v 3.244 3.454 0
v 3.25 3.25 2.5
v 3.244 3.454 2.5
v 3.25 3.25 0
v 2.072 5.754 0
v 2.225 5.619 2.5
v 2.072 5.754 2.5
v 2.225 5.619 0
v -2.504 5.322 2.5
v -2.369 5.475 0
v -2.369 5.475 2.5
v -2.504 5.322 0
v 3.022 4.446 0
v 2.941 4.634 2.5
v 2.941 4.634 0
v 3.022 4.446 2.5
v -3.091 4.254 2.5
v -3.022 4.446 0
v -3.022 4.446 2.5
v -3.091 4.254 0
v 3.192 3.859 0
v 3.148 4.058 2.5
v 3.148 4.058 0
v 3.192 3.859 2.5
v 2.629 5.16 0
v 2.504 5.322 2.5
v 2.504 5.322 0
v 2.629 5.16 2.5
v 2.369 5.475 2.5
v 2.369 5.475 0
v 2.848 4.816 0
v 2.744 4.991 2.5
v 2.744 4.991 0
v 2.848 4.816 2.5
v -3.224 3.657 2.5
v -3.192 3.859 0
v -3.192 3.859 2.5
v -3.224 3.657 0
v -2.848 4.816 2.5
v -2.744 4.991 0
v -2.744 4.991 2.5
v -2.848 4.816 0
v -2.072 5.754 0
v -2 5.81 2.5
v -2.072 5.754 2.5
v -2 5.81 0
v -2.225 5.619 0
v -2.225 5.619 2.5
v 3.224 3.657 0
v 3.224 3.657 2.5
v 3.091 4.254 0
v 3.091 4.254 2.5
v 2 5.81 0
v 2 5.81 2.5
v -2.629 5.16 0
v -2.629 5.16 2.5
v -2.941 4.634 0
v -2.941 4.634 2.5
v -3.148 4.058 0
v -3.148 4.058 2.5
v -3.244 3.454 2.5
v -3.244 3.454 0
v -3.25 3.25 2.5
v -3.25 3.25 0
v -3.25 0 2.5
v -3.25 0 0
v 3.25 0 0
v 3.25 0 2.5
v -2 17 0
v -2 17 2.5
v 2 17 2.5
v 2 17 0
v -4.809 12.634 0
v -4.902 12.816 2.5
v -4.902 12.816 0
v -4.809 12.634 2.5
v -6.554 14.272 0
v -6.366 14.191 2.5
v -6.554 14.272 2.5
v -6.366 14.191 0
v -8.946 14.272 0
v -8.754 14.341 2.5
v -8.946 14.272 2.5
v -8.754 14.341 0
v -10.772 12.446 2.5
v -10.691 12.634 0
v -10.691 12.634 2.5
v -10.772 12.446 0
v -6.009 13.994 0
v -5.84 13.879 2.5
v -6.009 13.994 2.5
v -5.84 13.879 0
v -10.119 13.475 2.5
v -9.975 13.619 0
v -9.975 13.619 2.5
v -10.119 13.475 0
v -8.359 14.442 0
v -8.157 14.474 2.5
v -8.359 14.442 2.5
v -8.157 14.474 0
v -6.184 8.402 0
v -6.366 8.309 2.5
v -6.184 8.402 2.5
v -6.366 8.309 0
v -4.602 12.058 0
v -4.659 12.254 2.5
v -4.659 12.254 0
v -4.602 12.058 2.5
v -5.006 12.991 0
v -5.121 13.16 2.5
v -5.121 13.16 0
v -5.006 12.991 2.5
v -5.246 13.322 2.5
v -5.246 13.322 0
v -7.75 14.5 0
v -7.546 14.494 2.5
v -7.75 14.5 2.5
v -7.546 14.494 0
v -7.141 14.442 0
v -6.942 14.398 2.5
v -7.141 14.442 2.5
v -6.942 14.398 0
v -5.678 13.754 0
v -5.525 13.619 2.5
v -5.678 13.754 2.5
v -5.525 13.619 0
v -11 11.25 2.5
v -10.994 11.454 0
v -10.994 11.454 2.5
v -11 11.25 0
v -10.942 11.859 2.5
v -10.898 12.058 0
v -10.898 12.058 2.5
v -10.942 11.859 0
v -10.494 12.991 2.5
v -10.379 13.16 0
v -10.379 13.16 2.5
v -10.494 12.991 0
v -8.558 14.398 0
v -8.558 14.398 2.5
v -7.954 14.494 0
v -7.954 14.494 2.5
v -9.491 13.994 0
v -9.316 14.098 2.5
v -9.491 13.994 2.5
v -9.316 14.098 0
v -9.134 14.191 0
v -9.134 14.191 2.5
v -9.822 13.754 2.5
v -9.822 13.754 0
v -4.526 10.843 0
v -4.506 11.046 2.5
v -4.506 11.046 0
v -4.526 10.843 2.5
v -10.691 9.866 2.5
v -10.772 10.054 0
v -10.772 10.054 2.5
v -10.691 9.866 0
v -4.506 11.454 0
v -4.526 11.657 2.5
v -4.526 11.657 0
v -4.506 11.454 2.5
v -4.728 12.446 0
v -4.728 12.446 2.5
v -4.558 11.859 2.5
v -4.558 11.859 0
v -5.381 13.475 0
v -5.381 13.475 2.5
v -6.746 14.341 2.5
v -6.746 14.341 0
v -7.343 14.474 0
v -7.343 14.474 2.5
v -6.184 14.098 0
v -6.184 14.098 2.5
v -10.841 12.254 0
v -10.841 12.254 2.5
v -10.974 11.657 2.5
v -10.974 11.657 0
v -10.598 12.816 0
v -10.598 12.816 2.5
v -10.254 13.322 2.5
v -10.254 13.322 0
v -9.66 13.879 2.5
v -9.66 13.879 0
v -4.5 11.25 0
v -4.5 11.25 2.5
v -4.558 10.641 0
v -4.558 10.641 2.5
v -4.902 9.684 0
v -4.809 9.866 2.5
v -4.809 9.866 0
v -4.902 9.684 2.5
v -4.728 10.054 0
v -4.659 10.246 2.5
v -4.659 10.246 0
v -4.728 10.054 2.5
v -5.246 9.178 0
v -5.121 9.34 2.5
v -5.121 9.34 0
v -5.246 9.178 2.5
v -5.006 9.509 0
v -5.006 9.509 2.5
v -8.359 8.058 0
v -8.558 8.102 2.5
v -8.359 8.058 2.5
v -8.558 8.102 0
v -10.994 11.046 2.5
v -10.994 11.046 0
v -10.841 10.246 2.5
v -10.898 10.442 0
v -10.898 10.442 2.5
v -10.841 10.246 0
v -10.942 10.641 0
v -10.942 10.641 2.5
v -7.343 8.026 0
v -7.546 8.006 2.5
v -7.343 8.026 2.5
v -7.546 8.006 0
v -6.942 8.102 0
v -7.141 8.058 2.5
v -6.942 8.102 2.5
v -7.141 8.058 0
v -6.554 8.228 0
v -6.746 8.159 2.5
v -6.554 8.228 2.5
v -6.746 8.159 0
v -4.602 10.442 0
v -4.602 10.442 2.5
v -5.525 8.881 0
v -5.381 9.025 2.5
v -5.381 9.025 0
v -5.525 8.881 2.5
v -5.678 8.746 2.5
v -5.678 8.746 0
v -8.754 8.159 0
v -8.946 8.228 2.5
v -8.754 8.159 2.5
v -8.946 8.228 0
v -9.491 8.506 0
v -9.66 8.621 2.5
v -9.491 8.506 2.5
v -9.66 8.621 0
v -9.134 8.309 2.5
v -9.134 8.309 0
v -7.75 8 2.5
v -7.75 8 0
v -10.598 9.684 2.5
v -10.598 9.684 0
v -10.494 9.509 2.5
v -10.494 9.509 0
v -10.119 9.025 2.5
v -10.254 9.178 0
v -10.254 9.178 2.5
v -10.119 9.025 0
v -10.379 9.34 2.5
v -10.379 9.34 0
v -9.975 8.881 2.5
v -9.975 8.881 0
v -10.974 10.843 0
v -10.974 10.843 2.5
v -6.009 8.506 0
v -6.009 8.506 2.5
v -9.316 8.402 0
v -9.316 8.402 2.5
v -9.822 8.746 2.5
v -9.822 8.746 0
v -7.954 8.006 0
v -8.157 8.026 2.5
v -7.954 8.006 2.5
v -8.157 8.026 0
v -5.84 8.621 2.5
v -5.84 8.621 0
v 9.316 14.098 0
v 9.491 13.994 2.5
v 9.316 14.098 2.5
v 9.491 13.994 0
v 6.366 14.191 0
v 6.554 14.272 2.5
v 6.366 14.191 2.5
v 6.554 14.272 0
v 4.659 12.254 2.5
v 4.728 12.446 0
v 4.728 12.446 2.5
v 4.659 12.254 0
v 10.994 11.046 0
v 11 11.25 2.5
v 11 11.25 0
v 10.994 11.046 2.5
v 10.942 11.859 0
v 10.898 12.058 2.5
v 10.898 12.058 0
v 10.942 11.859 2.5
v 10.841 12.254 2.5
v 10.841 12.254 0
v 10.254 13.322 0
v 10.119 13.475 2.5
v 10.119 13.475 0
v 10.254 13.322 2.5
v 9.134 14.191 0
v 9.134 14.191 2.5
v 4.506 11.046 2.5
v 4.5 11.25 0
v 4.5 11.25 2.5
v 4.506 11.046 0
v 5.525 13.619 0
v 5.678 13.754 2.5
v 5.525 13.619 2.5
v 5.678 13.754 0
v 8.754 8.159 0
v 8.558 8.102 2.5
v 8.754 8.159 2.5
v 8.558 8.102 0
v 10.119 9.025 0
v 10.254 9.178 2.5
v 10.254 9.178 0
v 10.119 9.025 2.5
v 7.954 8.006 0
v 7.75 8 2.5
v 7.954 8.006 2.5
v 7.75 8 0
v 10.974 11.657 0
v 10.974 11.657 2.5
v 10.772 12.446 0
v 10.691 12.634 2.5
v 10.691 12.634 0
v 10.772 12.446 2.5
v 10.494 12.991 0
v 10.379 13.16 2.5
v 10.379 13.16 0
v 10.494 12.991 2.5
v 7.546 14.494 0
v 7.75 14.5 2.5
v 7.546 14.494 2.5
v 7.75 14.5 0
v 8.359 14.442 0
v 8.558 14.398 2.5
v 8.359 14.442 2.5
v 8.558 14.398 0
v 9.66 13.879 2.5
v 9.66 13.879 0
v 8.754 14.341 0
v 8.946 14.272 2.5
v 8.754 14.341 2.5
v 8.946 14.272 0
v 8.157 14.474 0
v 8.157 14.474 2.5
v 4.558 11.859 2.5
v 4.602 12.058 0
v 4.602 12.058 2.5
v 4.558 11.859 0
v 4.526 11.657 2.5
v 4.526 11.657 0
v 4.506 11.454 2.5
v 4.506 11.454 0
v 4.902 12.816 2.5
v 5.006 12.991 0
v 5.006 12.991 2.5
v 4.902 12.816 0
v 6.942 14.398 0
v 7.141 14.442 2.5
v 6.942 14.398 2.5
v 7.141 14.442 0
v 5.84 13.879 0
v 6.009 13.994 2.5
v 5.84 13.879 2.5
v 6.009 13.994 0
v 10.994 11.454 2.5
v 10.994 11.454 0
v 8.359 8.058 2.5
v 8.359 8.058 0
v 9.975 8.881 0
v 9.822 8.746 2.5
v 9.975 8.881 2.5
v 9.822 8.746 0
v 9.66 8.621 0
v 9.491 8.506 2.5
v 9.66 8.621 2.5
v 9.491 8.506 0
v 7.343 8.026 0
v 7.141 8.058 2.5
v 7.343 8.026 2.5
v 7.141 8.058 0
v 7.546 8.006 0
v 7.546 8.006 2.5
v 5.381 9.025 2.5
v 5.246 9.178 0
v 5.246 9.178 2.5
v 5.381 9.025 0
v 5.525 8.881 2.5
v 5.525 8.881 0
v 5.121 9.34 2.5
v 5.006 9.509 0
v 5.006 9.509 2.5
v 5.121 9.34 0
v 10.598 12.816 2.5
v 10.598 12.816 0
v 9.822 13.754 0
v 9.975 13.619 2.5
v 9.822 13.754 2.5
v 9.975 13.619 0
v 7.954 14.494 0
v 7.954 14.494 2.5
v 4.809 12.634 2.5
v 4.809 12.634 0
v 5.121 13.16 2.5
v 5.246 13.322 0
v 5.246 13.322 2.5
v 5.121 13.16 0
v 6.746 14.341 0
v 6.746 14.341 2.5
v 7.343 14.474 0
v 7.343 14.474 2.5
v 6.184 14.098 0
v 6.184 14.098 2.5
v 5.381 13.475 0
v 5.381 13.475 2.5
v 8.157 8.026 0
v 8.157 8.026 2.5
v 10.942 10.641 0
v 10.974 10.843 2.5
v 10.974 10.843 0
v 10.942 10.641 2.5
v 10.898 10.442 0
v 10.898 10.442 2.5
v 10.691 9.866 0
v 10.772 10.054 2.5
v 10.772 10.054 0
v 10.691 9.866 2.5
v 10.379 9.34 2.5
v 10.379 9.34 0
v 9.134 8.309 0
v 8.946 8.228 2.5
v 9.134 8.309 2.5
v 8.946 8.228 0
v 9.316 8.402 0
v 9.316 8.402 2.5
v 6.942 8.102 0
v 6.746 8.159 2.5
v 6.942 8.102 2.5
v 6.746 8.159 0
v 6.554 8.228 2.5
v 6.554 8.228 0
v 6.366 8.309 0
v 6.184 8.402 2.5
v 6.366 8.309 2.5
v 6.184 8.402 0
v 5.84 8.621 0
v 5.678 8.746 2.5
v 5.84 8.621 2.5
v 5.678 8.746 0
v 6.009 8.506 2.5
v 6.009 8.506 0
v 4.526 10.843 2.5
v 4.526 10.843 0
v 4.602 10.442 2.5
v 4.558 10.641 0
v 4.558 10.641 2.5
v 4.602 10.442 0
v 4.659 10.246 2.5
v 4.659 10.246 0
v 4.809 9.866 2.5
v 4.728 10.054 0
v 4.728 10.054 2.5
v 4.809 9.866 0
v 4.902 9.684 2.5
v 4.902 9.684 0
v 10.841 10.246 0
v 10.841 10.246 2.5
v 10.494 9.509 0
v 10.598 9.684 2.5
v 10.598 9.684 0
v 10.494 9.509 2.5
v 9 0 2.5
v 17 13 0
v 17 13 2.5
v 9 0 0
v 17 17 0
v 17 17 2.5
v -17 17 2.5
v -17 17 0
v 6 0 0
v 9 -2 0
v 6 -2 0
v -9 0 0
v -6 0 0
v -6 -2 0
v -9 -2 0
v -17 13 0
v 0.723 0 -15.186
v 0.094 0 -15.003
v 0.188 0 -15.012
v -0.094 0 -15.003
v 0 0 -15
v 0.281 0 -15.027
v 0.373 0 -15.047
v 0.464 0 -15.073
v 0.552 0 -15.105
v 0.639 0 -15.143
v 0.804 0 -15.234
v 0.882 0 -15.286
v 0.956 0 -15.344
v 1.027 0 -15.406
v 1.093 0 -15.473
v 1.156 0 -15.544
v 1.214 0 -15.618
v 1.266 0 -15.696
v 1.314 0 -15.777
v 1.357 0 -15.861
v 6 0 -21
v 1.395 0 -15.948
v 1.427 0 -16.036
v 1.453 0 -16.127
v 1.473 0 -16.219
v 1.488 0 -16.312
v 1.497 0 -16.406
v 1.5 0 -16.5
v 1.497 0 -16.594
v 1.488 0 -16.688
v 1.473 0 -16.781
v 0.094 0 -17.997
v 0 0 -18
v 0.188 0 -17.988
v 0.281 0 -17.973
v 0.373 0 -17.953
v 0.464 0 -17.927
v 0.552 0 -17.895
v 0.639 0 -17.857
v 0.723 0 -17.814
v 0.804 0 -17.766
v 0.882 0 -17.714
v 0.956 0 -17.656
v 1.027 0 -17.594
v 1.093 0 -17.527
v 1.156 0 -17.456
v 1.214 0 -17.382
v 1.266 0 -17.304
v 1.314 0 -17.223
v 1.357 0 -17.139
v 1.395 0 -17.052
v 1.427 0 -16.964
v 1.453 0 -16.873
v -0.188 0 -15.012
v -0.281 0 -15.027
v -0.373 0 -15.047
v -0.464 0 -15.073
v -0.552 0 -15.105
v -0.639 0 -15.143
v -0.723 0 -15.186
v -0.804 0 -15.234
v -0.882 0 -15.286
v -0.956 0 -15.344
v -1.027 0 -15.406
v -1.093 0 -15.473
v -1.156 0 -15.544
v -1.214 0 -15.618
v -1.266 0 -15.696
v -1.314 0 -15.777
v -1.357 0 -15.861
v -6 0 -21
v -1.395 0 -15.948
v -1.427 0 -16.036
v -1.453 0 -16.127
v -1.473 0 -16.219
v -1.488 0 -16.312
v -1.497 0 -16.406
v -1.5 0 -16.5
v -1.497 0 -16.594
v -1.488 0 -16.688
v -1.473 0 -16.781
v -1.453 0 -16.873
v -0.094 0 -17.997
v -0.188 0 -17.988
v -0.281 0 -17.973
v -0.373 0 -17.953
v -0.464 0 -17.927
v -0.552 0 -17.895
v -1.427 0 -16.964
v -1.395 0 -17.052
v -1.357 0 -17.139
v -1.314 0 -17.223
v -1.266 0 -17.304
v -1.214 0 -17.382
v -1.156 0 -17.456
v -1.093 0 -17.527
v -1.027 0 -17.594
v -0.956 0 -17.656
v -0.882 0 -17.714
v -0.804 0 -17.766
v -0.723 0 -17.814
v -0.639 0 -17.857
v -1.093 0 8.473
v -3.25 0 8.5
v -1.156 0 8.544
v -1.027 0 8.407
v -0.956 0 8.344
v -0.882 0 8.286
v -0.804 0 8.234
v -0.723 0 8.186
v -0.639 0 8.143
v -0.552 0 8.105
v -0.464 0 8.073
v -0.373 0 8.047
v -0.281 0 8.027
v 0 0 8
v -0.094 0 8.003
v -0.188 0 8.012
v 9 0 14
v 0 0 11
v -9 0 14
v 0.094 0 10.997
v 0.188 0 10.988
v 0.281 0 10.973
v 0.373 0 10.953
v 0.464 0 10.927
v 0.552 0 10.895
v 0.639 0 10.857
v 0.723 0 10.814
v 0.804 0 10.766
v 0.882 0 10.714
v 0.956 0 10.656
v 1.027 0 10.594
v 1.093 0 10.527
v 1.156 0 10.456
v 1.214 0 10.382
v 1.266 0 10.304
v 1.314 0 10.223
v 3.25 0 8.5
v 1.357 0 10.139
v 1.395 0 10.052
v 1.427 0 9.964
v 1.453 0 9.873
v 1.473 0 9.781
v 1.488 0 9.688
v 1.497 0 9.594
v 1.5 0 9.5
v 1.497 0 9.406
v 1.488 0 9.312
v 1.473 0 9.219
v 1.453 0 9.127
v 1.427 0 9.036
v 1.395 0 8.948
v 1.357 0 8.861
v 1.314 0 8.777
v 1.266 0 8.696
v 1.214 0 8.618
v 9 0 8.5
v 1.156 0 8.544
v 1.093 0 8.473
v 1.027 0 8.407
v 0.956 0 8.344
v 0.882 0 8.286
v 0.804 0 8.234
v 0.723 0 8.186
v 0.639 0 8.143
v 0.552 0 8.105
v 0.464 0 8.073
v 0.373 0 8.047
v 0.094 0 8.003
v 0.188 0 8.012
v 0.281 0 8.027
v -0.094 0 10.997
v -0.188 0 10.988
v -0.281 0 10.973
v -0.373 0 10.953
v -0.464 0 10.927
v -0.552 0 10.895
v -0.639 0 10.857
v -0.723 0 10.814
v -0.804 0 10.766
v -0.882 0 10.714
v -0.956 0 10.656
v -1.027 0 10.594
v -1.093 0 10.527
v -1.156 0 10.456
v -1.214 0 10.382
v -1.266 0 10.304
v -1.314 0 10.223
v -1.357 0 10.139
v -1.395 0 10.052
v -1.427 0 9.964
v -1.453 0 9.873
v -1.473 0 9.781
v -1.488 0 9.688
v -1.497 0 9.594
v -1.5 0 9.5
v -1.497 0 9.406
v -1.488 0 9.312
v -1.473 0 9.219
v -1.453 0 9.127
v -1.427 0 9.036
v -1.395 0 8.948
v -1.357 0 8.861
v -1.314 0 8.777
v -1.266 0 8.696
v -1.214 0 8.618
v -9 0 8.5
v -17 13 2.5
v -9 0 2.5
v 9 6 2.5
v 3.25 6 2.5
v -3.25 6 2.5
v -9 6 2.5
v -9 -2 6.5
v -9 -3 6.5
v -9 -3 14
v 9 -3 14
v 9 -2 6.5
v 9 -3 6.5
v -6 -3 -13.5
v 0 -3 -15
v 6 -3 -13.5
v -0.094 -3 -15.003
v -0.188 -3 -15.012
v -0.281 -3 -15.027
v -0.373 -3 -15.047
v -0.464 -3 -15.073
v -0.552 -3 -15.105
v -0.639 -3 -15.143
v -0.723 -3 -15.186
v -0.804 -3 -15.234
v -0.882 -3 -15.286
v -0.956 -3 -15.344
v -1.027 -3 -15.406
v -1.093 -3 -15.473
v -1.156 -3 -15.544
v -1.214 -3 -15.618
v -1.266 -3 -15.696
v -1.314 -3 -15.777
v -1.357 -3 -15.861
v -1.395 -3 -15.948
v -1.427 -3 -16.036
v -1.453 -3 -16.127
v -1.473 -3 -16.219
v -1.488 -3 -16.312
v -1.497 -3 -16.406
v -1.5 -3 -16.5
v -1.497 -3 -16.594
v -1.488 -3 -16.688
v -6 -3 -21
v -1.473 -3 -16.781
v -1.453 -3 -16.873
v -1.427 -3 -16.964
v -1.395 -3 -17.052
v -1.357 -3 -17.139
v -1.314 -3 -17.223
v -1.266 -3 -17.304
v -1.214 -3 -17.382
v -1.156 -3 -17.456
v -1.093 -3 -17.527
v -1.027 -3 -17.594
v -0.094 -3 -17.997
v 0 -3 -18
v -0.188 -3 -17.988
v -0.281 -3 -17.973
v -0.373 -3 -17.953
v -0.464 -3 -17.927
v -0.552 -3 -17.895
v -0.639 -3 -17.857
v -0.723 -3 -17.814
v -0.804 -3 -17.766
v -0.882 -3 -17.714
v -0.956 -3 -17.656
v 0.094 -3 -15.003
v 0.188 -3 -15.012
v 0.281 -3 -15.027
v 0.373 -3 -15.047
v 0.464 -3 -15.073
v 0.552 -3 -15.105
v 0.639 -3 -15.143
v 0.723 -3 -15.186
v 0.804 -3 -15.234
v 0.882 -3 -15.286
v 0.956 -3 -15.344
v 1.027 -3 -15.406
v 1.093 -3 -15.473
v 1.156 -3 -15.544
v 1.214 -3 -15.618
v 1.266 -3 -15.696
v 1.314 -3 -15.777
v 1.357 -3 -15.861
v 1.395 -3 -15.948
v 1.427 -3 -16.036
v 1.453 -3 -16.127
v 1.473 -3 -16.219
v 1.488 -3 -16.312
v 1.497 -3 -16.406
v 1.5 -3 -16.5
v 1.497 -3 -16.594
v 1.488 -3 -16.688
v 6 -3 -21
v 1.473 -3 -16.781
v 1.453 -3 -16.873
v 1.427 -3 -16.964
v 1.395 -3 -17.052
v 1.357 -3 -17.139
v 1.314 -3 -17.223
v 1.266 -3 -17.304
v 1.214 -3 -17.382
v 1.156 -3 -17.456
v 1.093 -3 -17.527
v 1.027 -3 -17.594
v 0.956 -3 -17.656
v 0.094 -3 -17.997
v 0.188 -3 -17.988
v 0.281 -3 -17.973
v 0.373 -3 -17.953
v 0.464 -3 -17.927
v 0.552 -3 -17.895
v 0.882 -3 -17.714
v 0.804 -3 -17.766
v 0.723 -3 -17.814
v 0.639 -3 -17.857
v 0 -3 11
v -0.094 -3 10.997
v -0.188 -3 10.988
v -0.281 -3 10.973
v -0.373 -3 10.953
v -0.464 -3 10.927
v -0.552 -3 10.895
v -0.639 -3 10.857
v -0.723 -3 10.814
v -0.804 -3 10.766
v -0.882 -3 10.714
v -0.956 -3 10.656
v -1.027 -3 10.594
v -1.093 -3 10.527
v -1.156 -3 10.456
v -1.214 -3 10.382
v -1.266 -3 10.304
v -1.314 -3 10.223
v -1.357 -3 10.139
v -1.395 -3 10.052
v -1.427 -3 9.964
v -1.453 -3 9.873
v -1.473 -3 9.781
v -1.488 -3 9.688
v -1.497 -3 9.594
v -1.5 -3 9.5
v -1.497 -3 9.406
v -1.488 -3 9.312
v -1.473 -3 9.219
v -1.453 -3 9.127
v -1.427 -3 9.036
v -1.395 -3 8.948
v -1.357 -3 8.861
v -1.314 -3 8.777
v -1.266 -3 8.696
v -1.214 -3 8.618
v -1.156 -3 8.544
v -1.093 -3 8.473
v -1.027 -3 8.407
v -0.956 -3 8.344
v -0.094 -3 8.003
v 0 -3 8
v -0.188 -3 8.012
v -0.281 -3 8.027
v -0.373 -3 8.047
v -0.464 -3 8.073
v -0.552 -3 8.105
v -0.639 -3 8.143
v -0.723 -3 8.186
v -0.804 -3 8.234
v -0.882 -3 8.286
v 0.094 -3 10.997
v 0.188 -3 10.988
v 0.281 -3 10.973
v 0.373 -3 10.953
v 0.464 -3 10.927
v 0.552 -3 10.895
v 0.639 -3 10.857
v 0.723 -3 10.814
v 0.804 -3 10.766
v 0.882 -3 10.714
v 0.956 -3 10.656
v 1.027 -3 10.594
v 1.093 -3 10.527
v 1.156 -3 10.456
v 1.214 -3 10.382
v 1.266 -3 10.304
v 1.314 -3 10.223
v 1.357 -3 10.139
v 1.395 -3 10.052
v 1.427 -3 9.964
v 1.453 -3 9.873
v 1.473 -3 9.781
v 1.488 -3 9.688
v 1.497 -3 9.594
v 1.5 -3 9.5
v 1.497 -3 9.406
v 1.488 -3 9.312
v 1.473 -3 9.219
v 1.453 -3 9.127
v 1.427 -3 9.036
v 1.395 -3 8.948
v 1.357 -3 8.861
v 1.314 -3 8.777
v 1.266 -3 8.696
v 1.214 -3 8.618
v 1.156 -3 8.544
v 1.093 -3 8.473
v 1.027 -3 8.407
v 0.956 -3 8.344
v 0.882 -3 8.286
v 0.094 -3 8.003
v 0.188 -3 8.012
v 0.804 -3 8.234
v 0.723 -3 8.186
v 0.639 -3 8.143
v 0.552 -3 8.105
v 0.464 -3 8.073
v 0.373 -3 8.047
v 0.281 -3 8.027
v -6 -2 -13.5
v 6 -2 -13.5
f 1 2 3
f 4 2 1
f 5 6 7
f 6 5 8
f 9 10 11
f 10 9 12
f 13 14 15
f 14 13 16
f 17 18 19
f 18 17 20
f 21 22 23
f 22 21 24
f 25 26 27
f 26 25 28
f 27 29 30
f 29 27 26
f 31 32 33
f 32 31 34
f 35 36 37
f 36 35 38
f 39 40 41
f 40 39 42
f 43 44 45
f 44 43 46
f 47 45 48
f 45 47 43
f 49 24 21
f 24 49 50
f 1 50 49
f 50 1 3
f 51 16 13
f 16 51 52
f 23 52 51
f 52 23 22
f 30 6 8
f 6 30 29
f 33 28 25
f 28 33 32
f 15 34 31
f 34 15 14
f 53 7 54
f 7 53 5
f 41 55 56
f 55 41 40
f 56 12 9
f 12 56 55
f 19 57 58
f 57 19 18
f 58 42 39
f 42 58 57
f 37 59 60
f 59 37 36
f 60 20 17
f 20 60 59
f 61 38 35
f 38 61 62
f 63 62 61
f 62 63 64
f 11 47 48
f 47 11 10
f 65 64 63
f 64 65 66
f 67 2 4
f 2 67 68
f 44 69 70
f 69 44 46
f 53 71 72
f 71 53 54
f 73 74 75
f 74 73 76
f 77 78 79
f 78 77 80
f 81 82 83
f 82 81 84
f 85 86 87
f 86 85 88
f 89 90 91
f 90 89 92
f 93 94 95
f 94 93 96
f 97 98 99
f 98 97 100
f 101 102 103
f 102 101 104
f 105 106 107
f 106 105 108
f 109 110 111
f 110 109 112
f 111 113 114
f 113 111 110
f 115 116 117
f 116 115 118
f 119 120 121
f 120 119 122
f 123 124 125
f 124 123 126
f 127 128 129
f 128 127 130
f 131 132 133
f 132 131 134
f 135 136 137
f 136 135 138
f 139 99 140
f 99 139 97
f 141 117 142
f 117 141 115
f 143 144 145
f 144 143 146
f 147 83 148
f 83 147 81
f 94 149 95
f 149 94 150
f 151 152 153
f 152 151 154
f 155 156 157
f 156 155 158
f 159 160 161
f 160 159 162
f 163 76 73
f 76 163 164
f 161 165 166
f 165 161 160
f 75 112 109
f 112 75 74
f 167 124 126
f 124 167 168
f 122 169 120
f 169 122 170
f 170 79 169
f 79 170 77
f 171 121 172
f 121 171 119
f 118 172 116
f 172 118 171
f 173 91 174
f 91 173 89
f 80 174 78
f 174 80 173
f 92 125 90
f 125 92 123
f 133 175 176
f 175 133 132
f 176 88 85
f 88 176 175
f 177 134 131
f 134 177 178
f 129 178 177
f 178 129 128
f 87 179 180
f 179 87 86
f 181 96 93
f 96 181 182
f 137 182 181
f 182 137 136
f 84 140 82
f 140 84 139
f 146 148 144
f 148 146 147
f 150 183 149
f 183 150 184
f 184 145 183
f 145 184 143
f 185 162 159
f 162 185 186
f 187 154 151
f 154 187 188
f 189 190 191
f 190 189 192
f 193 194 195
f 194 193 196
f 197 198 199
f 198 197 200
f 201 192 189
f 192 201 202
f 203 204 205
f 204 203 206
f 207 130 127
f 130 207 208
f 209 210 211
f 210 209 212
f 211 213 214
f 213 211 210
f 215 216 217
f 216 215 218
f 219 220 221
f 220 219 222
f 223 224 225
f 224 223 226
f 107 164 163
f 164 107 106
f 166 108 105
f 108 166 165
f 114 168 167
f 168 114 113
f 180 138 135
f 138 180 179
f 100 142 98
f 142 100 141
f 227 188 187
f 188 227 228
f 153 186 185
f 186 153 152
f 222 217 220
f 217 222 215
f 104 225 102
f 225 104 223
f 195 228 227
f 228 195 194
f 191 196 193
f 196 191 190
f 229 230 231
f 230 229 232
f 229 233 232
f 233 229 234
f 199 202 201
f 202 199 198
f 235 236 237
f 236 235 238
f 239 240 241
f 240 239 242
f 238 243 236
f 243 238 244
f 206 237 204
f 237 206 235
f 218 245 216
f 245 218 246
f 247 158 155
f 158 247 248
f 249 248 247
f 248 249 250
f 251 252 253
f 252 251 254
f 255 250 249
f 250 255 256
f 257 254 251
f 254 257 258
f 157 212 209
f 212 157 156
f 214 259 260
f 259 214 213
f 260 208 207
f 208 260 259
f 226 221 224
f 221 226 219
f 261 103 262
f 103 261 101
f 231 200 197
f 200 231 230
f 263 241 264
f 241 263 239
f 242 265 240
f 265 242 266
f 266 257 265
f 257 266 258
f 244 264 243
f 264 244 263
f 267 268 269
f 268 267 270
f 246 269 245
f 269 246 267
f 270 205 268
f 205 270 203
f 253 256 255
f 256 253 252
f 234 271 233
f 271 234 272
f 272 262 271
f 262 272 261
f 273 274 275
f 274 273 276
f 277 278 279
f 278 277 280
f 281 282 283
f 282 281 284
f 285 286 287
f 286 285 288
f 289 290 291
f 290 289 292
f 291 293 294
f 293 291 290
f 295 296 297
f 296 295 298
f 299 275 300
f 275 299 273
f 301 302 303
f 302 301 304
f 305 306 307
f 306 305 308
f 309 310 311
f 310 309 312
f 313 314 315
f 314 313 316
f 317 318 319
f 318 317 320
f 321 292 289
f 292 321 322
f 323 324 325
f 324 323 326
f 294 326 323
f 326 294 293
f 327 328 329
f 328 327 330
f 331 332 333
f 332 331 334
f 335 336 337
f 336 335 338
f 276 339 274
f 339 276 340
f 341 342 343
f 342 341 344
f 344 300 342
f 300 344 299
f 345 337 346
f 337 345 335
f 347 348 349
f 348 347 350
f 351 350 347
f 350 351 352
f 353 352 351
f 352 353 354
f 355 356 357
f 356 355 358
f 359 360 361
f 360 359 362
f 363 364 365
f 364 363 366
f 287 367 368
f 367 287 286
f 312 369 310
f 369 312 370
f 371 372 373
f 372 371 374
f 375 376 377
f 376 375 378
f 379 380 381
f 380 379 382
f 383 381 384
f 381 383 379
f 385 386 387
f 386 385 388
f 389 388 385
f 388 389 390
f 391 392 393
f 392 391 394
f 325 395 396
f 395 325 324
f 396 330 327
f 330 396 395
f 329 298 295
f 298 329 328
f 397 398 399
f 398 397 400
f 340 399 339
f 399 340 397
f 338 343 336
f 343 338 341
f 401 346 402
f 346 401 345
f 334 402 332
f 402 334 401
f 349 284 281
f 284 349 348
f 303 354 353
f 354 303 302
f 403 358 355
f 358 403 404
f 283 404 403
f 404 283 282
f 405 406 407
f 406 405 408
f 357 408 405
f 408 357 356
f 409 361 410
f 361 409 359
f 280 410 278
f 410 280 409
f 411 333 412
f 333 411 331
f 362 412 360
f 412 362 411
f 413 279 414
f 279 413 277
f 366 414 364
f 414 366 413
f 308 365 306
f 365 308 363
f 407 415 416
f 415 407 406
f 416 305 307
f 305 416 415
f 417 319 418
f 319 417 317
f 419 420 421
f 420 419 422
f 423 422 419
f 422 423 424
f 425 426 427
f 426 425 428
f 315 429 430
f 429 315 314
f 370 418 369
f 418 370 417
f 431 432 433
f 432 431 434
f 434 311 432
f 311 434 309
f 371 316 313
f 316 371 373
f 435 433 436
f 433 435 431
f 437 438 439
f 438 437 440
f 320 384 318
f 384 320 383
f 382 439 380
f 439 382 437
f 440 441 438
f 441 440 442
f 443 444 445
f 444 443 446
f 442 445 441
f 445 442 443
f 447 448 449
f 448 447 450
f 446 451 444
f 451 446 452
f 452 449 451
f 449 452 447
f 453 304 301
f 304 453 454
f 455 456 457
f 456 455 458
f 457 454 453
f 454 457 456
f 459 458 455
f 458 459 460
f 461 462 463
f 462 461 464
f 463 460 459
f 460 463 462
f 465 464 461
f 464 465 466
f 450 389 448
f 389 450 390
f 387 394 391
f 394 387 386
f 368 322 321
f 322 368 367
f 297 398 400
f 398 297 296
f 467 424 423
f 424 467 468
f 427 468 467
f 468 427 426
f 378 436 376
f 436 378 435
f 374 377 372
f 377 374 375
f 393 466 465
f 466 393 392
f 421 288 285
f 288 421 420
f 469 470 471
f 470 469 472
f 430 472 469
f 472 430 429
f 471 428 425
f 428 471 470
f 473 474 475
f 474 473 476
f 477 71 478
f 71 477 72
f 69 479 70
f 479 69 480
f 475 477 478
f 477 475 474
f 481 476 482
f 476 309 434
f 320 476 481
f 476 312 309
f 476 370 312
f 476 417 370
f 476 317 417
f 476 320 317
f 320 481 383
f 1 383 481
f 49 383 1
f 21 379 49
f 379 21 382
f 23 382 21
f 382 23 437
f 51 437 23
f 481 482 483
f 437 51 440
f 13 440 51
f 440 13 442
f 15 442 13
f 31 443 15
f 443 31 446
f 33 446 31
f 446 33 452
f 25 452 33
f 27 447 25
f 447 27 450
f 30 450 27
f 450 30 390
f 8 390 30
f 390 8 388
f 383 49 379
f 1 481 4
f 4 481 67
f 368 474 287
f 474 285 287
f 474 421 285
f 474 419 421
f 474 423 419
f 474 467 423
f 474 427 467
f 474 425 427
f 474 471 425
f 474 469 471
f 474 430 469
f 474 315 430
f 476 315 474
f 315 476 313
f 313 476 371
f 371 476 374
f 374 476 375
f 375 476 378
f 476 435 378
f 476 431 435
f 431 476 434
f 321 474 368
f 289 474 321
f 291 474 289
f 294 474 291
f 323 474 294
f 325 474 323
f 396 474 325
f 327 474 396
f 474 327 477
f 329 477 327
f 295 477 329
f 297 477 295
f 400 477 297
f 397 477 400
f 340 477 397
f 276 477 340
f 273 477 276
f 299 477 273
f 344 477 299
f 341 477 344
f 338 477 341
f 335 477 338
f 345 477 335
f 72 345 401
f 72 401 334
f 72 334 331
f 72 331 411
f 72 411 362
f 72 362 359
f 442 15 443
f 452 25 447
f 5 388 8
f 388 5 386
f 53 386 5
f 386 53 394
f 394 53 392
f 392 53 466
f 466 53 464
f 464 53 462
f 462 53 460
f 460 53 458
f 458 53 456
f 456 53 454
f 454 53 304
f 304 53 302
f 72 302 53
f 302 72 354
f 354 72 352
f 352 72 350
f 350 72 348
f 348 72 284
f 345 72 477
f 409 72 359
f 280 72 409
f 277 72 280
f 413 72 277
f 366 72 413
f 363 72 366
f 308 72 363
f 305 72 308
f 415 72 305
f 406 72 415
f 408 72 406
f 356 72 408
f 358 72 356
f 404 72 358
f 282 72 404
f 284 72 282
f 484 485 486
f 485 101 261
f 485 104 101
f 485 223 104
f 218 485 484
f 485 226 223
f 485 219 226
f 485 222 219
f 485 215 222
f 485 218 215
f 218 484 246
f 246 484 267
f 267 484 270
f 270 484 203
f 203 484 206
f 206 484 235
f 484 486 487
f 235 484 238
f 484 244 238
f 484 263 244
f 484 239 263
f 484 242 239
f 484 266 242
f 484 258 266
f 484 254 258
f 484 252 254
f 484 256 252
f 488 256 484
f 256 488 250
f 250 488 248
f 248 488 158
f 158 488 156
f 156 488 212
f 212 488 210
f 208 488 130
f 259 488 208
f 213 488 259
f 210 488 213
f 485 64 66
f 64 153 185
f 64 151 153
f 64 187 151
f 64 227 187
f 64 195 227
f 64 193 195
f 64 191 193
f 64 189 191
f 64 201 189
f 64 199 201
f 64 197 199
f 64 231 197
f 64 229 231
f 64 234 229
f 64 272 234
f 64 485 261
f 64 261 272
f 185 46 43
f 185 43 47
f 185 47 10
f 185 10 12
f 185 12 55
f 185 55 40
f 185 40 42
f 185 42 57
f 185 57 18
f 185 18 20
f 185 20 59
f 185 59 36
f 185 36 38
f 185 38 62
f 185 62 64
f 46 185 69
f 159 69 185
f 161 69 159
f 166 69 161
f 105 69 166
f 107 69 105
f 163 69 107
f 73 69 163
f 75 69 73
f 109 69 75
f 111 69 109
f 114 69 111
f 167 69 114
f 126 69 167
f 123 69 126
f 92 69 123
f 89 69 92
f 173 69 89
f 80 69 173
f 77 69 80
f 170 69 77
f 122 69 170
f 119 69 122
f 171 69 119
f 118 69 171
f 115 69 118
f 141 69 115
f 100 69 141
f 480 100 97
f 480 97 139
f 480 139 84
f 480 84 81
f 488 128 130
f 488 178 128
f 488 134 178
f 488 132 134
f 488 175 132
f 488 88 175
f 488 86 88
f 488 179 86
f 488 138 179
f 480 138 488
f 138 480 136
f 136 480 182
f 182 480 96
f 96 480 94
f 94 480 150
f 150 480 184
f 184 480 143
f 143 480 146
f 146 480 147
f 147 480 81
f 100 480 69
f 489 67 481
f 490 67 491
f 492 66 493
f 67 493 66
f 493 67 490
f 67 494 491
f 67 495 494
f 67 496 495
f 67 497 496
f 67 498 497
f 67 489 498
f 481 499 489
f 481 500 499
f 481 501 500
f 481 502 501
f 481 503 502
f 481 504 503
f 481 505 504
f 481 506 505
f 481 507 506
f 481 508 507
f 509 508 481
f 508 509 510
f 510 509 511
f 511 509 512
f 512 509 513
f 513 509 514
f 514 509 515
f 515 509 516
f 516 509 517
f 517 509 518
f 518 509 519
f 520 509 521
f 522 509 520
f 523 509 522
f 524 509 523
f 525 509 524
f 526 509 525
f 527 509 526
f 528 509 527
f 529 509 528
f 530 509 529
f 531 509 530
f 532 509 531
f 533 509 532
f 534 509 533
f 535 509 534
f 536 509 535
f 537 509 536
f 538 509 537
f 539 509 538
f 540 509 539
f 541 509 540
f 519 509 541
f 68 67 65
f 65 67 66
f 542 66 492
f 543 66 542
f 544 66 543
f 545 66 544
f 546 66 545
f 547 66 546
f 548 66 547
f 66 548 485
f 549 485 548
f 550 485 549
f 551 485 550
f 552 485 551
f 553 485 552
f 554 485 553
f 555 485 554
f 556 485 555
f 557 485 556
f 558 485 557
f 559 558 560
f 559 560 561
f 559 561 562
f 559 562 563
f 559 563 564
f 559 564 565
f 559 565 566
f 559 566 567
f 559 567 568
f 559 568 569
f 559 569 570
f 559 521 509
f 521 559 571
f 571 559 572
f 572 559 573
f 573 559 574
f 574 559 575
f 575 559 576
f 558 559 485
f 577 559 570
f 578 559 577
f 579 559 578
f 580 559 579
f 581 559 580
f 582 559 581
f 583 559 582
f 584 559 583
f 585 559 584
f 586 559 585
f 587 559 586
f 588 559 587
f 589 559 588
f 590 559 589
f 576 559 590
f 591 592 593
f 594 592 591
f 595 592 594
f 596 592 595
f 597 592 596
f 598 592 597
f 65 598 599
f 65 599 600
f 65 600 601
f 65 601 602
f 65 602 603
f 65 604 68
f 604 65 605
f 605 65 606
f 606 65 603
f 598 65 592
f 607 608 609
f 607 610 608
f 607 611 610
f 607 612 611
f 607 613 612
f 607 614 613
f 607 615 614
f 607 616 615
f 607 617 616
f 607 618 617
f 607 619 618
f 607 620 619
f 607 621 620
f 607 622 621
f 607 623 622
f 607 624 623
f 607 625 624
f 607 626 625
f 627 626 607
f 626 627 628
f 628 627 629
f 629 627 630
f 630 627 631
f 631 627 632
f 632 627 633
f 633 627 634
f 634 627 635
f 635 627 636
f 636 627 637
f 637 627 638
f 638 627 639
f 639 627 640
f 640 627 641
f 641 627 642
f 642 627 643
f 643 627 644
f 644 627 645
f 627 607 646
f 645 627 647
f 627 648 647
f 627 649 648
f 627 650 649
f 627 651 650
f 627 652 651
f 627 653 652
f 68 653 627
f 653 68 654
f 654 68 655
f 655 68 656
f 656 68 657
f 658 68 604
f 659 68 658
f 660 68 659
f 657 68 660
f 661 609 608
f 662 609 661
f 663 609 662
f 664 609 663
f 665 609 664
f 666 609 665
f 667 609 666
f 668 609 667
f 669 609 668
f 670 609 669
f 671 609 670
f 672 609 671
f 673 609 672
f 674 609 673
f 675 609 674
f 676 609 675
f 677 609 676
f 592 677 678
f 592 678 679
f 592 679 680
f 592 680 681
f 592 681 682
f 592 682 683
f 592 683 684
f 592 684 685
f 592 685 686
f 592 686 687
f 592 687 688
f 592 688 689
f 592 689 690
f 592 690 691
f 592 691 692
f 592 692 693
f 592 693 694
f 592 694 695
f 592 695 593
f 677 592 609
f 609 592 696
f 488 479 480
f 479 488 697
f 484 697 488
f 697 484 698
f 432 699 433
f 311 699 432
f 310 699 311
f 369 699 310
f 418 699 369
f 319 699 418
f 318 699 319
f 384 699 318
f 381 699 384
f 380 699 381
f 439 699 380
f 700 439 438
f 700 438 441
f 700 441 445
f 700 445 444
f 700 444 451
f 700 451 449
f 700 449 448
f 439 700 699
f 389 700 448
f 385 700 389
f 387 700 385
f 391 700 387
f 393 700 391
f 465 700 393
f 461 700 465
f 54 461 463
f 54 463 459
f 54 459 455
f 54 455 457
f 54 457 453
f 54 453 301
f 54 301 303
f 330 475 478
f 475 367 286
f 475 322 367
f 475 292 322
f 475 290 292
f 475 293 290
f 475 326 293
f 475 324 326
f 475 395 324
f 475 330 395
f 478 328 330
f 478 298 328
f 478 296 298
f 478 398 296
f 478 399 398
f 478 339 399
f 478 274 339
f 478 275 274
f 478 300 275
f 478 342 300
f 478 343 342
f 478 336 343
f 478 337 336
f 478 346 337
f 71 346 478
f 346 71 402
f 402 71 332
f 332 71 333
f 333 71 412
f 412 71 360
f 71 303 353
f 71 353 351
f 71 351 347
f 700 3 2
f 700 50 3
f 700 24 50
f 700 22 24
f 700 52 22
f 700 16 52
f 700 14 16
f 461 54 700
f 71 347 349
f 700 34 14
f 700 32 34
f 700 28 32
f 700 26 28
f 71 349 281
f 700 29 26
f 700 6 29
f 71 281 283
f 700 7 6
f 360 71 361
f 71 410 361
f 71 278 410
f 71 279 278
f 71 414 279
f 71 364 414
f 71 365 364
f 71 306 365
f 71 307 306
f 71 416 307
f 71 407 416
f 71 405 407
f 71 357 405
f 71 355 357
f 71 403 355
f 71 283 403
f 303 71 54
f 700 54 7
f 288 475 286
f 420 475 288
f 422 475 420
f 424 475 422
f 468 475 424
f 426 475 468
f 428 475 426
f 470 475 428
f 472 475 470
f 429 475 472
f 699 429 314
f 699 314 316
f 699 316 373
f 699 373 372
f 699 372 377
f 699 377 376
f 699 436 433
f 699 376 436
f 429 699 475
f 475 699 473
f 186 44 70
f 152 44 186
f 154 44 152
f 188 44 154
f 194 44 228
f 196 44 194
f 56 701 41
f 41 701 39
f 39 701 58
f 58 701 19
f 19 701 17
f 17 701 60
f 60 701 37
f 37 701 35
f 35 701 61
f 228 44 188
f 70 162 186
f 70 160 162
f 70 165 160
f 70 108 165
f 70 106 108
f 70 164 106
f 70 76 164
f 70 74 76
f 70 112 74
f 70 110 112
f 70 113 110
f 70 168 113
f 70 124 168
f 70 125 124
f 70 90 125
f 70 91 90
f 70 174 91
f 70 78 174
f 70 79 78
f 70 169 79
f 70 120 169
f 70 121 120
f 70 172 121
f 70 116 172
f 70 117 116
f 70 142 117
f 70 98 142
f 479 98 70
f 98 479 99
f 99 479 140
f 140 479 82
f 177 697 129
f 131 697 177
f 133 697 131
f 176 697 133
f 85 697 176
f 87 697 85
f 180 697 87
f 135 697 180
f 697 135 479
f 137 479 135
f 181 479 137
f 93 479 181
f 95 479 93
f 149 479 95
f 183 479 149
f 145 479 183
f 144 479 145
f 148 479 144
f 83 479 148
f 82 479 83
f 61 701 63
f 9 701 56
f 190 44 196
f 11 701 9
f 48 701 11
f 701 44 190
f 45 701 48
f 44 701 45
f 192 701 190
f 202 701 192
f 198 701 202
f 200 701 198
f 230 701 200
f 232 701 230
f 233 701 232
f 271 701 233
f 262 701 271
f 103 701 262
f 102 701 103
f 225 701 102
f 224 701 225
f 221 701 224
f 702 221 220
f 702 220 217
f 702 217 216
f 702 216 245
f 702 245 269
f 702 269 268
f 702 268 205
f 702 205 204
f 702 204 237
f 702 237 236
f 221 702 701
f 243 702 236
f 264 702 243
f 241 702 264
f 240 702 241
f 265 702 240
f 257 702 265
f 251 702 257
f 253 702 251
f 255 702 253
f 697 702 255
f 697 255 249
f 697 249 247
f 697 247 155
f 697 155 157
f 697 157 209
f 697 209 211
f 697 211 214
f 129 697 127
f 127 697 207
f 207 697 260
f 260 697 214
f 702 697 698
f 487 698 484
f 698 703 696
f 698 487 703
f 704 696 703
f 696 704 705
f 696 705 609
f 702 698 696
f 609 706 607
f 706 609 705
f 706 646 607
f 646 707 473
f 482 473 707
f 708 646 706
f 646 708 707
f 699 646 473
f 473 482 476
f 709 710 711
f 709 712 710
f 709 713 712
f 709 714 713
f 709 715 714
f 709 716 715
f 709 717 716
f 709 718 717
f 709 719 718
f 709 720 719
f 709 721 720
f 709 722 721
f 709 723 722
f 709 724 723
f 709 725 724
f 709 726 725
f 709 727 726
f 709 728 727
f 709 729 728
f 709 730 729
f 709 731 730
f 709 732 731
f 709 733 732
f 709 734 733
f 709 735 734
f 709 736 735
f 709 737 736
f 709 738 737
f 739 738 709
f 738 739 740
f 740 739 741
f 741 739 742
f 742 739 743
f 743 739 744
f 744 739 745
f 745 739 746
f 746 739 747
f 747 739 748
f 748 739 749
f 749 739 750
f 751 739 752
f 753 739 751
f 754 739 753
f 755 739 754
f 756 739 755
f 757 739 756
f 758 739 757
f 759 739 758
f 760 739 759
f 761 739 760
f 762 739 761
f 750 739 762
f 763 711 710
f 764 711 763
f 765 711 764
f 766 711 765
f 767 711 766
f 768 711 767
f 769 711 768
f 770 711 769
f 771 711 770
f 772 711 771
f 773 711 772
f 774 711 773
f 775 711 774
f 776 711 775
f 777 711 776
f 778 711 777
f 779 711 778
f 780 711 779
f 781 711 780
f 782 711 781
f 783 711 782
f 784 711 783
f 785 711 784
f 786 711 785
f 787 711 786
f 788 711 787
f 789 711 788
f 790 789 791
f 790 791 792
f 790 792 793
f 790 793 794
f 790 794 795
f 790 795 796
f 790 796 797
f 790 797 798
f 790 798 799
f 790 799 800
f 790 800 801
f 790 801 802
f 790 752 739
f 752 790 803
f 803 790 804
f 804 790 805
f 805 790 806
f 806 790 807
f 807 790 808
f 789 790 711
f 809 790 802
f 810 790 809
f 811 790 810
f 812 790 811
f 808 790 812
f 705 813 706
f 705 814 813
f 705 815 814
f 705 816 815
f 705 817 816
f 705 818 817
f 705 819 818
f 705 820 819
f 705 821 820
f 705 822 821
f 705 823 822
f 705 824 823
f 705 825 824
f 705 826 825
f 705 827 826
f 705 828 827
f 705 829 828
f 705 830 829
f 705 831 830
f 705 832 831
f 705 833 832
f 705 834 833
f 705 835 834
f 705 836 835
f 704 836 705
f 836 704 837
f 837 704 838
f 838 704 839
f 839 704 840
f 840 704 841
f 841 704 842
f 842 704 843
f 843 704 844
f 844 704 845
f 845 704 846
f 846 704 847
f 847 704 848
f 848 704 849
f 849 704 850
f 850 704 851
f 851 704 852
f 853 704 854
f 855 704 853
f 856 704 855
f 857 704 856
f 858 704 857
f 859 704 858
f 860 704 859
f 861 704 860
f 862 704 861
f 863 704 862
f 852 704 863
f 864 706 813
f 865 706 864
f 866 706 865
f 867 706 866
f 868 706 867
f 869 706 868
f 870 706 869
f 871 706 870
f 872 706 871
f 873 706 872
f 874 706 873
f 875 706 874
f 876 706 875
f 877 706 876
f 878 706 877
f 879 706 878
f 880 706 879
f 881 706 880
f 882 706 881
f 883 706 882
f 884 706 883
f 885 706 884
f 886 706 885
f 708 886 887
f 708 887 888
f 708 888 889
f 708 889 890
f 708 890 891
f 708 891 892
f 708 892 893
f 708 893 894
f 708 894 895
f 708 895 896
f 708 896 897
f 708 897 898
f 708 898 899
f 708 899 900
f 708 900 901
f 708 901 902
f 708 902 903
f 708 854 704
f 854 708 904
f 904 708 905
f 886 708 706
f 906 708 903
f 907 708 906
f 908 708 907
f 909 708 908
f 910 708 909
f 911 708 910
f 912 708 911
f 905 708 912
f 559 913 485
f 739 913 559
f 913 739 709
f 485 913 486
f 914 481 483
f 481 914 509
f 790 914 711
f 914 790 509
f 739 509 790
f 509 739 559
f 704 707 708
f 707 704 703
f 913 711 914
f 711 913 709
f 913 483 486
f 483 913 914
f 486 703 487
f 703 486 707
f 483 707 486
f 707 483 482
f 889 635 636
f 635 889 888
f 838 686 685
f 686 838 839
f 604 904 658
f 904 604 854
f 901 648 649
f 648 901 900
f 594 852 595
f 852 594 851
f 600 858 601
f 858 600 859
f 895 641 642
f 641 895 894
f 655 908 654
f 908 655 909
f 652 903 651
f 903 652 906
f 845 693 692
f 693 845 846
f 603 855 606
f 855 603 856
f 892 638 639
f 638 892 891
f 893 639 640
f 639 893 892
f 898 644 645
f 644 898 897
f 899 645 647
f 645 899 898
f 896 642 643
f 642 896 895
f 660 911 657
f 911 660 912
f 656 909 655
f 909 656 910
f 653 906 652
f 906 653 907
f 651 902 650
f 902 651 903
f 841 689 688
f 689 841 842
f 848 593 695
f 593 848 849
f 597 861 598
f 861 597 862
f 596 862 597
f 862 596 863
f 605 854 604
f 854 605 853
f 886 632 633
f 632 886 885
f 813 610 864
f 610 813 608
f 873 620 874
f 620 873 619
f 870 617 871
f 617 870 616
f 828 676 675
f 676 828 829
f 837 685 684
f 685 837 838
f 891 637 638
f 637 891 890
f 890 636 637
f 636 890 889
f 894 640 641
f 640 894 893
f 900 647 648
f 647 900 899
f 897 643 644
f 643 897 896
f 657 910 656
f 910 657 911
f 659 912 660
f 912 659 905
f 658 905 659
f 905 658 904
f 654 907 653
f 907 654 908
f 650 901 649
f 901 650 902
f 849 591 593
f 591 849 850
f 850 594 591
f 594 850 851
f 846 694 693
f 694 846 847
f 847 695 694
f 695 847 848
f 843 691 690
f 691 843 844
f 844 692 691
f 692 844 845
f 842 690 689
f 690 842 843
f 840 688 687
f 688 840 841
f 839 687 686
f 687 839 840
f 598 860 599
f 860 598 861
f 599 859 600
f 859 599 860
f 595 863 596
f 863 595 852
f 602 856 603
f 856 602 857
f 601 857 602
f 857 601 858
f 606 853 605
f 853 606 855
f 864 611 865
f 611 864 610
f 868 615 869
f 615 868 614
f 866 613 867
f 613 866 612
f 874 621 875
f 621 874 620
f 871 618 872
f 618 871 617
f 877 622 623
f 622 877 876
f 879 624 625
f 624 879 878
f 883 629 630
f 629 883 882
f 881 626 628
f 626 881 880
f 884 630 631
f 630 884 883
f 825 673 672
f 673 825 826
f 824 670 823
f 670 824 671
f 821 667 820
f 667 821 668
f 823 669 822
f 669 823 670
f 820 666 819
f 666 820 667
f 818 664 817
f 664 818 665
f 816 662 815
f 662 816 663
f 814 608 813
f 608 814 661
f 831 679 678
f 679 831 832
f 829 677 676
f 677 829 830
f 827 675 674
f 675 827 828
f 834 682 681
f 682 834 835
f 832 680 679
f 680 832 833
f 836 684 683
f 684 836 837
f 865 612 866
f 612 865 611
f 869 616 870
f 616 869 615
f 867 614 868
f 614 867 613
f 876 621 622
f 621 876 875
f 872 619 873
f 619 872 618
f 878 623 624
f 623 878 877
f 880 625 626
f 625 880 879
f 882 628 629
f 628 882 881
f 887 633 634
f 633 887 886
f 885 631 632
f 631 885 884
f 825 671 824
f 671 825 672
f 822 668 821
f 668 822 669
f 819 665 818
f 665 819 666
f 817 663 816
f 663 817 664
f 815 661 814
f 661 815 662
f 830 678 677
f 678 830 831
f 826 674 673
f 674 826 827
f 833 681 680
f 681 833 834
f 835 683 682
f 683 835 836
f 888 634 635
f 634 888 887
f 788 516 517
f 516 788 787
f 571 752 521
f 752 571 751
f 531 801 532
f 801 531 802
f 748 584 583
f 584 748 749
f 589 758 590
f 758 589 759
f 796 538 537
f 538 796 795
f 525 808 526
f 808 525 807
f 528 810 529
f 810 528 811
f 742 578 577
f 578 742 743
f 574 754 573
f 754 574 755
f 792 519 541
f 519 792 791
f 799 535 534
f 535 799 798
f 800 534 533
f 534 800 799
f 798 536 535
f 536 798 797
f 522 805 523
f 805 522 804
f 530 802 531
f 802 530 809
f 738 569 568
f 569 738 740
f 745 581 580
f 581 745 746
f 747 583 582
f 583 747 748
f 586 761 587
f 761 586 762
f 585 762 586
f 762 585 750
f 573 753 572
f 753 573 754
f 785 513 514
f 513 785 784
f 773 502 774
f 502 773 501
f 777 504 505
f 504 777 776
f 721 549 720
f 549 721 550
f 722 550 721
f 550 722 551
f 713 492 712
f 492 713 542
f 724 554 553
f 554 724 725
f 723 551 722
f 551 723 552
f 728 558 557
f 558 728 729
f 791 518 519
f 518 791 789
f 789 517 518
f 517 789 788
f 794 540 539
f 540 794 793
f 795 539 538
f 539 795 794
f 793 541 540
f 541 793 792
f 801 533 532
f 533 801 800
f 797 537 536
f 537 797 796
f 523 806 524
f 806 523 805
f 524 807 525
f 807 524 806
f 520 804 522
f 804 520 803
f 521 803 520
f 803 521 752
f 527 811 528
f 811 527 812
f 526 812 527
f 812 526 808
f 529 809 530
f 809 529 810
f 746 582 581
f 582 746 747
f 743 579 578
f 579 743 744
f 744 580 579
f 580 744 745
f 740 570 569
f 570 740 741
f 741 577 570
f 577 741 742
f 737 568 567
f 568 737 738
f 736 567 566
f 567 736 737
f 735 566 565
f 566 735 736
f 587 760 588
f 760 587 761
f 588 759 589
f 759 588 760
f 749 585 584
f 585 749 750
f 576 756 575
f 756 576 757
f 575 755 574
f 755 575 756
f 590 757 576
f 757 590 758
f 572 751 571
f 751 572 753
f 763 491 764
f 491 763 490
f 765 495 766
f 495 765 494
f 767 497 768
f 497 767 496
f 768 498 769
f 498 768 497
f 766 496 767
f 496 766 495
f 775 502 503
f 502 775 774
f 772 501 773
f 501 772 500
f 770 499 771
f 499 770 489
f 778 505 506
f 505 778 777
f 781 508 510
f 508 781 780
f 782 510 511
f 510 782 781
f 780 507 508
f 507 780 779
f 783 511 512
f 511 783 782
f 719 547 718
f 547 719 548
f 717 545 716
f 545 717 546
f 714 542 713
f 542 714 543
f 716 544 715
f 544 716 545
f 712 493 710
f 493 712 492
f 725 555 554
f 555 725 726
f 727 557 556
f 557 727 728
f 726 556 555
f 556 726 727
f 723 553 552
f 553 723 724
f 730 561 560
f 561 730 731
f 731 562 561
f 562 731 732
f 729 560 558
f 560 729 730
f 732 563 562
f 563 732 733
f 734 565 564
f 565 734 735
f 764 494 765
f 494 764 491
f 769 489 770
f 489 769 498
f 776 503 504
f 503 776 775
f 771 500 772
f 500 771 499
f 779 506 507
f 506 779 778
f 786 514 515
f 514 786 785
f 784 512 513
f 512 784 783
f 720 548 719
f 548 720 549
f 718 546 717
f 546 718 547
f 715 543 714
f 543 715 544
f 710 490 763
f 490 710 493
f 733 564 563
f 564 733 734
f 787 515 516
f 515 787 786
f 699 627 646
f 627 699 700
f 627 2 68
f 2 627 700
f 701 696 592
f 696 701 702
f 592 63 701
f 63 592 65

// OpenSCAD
//
//  <----------    L    -------->
//          <---   m   --->
//                <g>
//   _____________   _____________
//  |      _      | |      _      |    |
//  |     / \     | |     / \     |    |
//  |     \_/     | |     \_/     |    |  |
//   \            | |            /  |  |  |
//    \           | |           /   |  D  |
//     \          | |          /    |  |  n
//      \         | |         /     d  |  |
//       \       /   \       /      |  |  |
//        \_____|     |_____/       |  |  |
//
//               < G >
//        <-----  l  ------->



L = 34;
l = 18;
D = 17;
d = 13;
G = 6.5; 
g = 4;
m = 15.5;
n = 11.25;
ant_hole_dia = 6.5;
plate_thick = 2.5;

translate([0, 0, plate_thick/2])
    difference() {
        linear_extrude(height = plate_thick, center = true, 
                        convexity = 10, twist = 0)
            polygon(points=[[-l/2, 0],
                            [l/2, 0],
                            [L/2, d],
                            [L/2, D],
                            [-L/2, D],
                            [-L/2, d]]);
        union() {
            translate([0, ant_hole_dia/2, 0])
                cylinder(h = plate_thick+2, r=ant_hole_dia/2, center = true, $fn=100);
            translate([0, ant_hole_dia/4-1, 0])
                cube([ant_hole_dia, ant_hole_dia/2+2, plate_thick+2], center=true);
            translate([0, D/2+1, 0])
                cube([g, D+2, plate_thick+2], center=true);
            translate([-m/2, n, 0])
                cylinder(h = plate_thick+2, r=ant_hole_dia/2, center = true, $fn=100);
            translate([m/2, n, 0])
                cylinder(h = plate_thick+2, r=ant_hole_dia/2, center = true, $fn=100);
        }
    }


led_sup_hole_dia = 3;
top_hole_height = 9.5;
inter_hole = 26;
cable_pocket_thick = 1;
led_supp_thick = 2;
bot_leg_width = 12;
border_reserve = 3;
pocket_reserve = 1.5;

max_supp_thick = led_supp_thick + cable_pocket_thick;    
bot_hole_height = inter_hole - top_hole_height;    
bot_length = bot_hole_height+(led_sup_hole_dia/2)+border_reserve;
difference() {
    difference() {
        union() {    
            translate([-l/2, -max_supp_thick, 0])
                cube(
                [l, 
                max_supp_thick, 
                top_hole_height+(led_sup_hole_dia/2)+border_reserve], 
                center=false);
                translate([-bot_leg_width/2, -max_supp_thick, -bot_length])
                cube(
                [bot_leg_width, 
                max_supp_thick, 
                bot_length], 
                center=false);
        }
        translate([-(l+2)/2, -(max_supp_thick+1), -(bot_hole_height-led_sup_hole_dia/2-pocket_reserve)])
            cube([l+2, cable_pocket_thick+1, inter_hole-led_sup_hole_dia-(2*pocket_reserve)], center=false);
    }
    
    translate([0, -(max_supp_thick)/2, top_hole_height]) {
        rotate([-90, 0, 0]) {
            union() {
                cylinder(h = max_supp_thick+2, d=led_sup_hole_dia, center = true, $fn=100);
                translate([0, inter_hole, 0])
                cylinder(h = max_supp_thick+2, d=led_sup_hole_dia, center = true, $fn=100);
            }
        }
    }
}


brace_width = (l-ant_hole_dia)/2;
brace_side = 6;

translate([ant_hole_dia/2 + brace_width, brace_side, plate_thick])
    rotate([0, 0, 180])
        prism(brace_width, brace_side, brace_side);
translate([-ant_hole_dia/2, brace_side, plate_thick])
    rotate([0, 0, 180])
        prism(brace_width, brace_side, brace_side);
 
module prism(l, w, h){
    polyhedron(
    points=[[0,0,0], [l,0,0], [l,w,0], [0,w,0], [0,w,h], [l,w,h]],
    faces=[[0,1,2,3],[5,4,3,2],[0,4,5,1],[0,3,4],[5,2,1]]
    );
}
